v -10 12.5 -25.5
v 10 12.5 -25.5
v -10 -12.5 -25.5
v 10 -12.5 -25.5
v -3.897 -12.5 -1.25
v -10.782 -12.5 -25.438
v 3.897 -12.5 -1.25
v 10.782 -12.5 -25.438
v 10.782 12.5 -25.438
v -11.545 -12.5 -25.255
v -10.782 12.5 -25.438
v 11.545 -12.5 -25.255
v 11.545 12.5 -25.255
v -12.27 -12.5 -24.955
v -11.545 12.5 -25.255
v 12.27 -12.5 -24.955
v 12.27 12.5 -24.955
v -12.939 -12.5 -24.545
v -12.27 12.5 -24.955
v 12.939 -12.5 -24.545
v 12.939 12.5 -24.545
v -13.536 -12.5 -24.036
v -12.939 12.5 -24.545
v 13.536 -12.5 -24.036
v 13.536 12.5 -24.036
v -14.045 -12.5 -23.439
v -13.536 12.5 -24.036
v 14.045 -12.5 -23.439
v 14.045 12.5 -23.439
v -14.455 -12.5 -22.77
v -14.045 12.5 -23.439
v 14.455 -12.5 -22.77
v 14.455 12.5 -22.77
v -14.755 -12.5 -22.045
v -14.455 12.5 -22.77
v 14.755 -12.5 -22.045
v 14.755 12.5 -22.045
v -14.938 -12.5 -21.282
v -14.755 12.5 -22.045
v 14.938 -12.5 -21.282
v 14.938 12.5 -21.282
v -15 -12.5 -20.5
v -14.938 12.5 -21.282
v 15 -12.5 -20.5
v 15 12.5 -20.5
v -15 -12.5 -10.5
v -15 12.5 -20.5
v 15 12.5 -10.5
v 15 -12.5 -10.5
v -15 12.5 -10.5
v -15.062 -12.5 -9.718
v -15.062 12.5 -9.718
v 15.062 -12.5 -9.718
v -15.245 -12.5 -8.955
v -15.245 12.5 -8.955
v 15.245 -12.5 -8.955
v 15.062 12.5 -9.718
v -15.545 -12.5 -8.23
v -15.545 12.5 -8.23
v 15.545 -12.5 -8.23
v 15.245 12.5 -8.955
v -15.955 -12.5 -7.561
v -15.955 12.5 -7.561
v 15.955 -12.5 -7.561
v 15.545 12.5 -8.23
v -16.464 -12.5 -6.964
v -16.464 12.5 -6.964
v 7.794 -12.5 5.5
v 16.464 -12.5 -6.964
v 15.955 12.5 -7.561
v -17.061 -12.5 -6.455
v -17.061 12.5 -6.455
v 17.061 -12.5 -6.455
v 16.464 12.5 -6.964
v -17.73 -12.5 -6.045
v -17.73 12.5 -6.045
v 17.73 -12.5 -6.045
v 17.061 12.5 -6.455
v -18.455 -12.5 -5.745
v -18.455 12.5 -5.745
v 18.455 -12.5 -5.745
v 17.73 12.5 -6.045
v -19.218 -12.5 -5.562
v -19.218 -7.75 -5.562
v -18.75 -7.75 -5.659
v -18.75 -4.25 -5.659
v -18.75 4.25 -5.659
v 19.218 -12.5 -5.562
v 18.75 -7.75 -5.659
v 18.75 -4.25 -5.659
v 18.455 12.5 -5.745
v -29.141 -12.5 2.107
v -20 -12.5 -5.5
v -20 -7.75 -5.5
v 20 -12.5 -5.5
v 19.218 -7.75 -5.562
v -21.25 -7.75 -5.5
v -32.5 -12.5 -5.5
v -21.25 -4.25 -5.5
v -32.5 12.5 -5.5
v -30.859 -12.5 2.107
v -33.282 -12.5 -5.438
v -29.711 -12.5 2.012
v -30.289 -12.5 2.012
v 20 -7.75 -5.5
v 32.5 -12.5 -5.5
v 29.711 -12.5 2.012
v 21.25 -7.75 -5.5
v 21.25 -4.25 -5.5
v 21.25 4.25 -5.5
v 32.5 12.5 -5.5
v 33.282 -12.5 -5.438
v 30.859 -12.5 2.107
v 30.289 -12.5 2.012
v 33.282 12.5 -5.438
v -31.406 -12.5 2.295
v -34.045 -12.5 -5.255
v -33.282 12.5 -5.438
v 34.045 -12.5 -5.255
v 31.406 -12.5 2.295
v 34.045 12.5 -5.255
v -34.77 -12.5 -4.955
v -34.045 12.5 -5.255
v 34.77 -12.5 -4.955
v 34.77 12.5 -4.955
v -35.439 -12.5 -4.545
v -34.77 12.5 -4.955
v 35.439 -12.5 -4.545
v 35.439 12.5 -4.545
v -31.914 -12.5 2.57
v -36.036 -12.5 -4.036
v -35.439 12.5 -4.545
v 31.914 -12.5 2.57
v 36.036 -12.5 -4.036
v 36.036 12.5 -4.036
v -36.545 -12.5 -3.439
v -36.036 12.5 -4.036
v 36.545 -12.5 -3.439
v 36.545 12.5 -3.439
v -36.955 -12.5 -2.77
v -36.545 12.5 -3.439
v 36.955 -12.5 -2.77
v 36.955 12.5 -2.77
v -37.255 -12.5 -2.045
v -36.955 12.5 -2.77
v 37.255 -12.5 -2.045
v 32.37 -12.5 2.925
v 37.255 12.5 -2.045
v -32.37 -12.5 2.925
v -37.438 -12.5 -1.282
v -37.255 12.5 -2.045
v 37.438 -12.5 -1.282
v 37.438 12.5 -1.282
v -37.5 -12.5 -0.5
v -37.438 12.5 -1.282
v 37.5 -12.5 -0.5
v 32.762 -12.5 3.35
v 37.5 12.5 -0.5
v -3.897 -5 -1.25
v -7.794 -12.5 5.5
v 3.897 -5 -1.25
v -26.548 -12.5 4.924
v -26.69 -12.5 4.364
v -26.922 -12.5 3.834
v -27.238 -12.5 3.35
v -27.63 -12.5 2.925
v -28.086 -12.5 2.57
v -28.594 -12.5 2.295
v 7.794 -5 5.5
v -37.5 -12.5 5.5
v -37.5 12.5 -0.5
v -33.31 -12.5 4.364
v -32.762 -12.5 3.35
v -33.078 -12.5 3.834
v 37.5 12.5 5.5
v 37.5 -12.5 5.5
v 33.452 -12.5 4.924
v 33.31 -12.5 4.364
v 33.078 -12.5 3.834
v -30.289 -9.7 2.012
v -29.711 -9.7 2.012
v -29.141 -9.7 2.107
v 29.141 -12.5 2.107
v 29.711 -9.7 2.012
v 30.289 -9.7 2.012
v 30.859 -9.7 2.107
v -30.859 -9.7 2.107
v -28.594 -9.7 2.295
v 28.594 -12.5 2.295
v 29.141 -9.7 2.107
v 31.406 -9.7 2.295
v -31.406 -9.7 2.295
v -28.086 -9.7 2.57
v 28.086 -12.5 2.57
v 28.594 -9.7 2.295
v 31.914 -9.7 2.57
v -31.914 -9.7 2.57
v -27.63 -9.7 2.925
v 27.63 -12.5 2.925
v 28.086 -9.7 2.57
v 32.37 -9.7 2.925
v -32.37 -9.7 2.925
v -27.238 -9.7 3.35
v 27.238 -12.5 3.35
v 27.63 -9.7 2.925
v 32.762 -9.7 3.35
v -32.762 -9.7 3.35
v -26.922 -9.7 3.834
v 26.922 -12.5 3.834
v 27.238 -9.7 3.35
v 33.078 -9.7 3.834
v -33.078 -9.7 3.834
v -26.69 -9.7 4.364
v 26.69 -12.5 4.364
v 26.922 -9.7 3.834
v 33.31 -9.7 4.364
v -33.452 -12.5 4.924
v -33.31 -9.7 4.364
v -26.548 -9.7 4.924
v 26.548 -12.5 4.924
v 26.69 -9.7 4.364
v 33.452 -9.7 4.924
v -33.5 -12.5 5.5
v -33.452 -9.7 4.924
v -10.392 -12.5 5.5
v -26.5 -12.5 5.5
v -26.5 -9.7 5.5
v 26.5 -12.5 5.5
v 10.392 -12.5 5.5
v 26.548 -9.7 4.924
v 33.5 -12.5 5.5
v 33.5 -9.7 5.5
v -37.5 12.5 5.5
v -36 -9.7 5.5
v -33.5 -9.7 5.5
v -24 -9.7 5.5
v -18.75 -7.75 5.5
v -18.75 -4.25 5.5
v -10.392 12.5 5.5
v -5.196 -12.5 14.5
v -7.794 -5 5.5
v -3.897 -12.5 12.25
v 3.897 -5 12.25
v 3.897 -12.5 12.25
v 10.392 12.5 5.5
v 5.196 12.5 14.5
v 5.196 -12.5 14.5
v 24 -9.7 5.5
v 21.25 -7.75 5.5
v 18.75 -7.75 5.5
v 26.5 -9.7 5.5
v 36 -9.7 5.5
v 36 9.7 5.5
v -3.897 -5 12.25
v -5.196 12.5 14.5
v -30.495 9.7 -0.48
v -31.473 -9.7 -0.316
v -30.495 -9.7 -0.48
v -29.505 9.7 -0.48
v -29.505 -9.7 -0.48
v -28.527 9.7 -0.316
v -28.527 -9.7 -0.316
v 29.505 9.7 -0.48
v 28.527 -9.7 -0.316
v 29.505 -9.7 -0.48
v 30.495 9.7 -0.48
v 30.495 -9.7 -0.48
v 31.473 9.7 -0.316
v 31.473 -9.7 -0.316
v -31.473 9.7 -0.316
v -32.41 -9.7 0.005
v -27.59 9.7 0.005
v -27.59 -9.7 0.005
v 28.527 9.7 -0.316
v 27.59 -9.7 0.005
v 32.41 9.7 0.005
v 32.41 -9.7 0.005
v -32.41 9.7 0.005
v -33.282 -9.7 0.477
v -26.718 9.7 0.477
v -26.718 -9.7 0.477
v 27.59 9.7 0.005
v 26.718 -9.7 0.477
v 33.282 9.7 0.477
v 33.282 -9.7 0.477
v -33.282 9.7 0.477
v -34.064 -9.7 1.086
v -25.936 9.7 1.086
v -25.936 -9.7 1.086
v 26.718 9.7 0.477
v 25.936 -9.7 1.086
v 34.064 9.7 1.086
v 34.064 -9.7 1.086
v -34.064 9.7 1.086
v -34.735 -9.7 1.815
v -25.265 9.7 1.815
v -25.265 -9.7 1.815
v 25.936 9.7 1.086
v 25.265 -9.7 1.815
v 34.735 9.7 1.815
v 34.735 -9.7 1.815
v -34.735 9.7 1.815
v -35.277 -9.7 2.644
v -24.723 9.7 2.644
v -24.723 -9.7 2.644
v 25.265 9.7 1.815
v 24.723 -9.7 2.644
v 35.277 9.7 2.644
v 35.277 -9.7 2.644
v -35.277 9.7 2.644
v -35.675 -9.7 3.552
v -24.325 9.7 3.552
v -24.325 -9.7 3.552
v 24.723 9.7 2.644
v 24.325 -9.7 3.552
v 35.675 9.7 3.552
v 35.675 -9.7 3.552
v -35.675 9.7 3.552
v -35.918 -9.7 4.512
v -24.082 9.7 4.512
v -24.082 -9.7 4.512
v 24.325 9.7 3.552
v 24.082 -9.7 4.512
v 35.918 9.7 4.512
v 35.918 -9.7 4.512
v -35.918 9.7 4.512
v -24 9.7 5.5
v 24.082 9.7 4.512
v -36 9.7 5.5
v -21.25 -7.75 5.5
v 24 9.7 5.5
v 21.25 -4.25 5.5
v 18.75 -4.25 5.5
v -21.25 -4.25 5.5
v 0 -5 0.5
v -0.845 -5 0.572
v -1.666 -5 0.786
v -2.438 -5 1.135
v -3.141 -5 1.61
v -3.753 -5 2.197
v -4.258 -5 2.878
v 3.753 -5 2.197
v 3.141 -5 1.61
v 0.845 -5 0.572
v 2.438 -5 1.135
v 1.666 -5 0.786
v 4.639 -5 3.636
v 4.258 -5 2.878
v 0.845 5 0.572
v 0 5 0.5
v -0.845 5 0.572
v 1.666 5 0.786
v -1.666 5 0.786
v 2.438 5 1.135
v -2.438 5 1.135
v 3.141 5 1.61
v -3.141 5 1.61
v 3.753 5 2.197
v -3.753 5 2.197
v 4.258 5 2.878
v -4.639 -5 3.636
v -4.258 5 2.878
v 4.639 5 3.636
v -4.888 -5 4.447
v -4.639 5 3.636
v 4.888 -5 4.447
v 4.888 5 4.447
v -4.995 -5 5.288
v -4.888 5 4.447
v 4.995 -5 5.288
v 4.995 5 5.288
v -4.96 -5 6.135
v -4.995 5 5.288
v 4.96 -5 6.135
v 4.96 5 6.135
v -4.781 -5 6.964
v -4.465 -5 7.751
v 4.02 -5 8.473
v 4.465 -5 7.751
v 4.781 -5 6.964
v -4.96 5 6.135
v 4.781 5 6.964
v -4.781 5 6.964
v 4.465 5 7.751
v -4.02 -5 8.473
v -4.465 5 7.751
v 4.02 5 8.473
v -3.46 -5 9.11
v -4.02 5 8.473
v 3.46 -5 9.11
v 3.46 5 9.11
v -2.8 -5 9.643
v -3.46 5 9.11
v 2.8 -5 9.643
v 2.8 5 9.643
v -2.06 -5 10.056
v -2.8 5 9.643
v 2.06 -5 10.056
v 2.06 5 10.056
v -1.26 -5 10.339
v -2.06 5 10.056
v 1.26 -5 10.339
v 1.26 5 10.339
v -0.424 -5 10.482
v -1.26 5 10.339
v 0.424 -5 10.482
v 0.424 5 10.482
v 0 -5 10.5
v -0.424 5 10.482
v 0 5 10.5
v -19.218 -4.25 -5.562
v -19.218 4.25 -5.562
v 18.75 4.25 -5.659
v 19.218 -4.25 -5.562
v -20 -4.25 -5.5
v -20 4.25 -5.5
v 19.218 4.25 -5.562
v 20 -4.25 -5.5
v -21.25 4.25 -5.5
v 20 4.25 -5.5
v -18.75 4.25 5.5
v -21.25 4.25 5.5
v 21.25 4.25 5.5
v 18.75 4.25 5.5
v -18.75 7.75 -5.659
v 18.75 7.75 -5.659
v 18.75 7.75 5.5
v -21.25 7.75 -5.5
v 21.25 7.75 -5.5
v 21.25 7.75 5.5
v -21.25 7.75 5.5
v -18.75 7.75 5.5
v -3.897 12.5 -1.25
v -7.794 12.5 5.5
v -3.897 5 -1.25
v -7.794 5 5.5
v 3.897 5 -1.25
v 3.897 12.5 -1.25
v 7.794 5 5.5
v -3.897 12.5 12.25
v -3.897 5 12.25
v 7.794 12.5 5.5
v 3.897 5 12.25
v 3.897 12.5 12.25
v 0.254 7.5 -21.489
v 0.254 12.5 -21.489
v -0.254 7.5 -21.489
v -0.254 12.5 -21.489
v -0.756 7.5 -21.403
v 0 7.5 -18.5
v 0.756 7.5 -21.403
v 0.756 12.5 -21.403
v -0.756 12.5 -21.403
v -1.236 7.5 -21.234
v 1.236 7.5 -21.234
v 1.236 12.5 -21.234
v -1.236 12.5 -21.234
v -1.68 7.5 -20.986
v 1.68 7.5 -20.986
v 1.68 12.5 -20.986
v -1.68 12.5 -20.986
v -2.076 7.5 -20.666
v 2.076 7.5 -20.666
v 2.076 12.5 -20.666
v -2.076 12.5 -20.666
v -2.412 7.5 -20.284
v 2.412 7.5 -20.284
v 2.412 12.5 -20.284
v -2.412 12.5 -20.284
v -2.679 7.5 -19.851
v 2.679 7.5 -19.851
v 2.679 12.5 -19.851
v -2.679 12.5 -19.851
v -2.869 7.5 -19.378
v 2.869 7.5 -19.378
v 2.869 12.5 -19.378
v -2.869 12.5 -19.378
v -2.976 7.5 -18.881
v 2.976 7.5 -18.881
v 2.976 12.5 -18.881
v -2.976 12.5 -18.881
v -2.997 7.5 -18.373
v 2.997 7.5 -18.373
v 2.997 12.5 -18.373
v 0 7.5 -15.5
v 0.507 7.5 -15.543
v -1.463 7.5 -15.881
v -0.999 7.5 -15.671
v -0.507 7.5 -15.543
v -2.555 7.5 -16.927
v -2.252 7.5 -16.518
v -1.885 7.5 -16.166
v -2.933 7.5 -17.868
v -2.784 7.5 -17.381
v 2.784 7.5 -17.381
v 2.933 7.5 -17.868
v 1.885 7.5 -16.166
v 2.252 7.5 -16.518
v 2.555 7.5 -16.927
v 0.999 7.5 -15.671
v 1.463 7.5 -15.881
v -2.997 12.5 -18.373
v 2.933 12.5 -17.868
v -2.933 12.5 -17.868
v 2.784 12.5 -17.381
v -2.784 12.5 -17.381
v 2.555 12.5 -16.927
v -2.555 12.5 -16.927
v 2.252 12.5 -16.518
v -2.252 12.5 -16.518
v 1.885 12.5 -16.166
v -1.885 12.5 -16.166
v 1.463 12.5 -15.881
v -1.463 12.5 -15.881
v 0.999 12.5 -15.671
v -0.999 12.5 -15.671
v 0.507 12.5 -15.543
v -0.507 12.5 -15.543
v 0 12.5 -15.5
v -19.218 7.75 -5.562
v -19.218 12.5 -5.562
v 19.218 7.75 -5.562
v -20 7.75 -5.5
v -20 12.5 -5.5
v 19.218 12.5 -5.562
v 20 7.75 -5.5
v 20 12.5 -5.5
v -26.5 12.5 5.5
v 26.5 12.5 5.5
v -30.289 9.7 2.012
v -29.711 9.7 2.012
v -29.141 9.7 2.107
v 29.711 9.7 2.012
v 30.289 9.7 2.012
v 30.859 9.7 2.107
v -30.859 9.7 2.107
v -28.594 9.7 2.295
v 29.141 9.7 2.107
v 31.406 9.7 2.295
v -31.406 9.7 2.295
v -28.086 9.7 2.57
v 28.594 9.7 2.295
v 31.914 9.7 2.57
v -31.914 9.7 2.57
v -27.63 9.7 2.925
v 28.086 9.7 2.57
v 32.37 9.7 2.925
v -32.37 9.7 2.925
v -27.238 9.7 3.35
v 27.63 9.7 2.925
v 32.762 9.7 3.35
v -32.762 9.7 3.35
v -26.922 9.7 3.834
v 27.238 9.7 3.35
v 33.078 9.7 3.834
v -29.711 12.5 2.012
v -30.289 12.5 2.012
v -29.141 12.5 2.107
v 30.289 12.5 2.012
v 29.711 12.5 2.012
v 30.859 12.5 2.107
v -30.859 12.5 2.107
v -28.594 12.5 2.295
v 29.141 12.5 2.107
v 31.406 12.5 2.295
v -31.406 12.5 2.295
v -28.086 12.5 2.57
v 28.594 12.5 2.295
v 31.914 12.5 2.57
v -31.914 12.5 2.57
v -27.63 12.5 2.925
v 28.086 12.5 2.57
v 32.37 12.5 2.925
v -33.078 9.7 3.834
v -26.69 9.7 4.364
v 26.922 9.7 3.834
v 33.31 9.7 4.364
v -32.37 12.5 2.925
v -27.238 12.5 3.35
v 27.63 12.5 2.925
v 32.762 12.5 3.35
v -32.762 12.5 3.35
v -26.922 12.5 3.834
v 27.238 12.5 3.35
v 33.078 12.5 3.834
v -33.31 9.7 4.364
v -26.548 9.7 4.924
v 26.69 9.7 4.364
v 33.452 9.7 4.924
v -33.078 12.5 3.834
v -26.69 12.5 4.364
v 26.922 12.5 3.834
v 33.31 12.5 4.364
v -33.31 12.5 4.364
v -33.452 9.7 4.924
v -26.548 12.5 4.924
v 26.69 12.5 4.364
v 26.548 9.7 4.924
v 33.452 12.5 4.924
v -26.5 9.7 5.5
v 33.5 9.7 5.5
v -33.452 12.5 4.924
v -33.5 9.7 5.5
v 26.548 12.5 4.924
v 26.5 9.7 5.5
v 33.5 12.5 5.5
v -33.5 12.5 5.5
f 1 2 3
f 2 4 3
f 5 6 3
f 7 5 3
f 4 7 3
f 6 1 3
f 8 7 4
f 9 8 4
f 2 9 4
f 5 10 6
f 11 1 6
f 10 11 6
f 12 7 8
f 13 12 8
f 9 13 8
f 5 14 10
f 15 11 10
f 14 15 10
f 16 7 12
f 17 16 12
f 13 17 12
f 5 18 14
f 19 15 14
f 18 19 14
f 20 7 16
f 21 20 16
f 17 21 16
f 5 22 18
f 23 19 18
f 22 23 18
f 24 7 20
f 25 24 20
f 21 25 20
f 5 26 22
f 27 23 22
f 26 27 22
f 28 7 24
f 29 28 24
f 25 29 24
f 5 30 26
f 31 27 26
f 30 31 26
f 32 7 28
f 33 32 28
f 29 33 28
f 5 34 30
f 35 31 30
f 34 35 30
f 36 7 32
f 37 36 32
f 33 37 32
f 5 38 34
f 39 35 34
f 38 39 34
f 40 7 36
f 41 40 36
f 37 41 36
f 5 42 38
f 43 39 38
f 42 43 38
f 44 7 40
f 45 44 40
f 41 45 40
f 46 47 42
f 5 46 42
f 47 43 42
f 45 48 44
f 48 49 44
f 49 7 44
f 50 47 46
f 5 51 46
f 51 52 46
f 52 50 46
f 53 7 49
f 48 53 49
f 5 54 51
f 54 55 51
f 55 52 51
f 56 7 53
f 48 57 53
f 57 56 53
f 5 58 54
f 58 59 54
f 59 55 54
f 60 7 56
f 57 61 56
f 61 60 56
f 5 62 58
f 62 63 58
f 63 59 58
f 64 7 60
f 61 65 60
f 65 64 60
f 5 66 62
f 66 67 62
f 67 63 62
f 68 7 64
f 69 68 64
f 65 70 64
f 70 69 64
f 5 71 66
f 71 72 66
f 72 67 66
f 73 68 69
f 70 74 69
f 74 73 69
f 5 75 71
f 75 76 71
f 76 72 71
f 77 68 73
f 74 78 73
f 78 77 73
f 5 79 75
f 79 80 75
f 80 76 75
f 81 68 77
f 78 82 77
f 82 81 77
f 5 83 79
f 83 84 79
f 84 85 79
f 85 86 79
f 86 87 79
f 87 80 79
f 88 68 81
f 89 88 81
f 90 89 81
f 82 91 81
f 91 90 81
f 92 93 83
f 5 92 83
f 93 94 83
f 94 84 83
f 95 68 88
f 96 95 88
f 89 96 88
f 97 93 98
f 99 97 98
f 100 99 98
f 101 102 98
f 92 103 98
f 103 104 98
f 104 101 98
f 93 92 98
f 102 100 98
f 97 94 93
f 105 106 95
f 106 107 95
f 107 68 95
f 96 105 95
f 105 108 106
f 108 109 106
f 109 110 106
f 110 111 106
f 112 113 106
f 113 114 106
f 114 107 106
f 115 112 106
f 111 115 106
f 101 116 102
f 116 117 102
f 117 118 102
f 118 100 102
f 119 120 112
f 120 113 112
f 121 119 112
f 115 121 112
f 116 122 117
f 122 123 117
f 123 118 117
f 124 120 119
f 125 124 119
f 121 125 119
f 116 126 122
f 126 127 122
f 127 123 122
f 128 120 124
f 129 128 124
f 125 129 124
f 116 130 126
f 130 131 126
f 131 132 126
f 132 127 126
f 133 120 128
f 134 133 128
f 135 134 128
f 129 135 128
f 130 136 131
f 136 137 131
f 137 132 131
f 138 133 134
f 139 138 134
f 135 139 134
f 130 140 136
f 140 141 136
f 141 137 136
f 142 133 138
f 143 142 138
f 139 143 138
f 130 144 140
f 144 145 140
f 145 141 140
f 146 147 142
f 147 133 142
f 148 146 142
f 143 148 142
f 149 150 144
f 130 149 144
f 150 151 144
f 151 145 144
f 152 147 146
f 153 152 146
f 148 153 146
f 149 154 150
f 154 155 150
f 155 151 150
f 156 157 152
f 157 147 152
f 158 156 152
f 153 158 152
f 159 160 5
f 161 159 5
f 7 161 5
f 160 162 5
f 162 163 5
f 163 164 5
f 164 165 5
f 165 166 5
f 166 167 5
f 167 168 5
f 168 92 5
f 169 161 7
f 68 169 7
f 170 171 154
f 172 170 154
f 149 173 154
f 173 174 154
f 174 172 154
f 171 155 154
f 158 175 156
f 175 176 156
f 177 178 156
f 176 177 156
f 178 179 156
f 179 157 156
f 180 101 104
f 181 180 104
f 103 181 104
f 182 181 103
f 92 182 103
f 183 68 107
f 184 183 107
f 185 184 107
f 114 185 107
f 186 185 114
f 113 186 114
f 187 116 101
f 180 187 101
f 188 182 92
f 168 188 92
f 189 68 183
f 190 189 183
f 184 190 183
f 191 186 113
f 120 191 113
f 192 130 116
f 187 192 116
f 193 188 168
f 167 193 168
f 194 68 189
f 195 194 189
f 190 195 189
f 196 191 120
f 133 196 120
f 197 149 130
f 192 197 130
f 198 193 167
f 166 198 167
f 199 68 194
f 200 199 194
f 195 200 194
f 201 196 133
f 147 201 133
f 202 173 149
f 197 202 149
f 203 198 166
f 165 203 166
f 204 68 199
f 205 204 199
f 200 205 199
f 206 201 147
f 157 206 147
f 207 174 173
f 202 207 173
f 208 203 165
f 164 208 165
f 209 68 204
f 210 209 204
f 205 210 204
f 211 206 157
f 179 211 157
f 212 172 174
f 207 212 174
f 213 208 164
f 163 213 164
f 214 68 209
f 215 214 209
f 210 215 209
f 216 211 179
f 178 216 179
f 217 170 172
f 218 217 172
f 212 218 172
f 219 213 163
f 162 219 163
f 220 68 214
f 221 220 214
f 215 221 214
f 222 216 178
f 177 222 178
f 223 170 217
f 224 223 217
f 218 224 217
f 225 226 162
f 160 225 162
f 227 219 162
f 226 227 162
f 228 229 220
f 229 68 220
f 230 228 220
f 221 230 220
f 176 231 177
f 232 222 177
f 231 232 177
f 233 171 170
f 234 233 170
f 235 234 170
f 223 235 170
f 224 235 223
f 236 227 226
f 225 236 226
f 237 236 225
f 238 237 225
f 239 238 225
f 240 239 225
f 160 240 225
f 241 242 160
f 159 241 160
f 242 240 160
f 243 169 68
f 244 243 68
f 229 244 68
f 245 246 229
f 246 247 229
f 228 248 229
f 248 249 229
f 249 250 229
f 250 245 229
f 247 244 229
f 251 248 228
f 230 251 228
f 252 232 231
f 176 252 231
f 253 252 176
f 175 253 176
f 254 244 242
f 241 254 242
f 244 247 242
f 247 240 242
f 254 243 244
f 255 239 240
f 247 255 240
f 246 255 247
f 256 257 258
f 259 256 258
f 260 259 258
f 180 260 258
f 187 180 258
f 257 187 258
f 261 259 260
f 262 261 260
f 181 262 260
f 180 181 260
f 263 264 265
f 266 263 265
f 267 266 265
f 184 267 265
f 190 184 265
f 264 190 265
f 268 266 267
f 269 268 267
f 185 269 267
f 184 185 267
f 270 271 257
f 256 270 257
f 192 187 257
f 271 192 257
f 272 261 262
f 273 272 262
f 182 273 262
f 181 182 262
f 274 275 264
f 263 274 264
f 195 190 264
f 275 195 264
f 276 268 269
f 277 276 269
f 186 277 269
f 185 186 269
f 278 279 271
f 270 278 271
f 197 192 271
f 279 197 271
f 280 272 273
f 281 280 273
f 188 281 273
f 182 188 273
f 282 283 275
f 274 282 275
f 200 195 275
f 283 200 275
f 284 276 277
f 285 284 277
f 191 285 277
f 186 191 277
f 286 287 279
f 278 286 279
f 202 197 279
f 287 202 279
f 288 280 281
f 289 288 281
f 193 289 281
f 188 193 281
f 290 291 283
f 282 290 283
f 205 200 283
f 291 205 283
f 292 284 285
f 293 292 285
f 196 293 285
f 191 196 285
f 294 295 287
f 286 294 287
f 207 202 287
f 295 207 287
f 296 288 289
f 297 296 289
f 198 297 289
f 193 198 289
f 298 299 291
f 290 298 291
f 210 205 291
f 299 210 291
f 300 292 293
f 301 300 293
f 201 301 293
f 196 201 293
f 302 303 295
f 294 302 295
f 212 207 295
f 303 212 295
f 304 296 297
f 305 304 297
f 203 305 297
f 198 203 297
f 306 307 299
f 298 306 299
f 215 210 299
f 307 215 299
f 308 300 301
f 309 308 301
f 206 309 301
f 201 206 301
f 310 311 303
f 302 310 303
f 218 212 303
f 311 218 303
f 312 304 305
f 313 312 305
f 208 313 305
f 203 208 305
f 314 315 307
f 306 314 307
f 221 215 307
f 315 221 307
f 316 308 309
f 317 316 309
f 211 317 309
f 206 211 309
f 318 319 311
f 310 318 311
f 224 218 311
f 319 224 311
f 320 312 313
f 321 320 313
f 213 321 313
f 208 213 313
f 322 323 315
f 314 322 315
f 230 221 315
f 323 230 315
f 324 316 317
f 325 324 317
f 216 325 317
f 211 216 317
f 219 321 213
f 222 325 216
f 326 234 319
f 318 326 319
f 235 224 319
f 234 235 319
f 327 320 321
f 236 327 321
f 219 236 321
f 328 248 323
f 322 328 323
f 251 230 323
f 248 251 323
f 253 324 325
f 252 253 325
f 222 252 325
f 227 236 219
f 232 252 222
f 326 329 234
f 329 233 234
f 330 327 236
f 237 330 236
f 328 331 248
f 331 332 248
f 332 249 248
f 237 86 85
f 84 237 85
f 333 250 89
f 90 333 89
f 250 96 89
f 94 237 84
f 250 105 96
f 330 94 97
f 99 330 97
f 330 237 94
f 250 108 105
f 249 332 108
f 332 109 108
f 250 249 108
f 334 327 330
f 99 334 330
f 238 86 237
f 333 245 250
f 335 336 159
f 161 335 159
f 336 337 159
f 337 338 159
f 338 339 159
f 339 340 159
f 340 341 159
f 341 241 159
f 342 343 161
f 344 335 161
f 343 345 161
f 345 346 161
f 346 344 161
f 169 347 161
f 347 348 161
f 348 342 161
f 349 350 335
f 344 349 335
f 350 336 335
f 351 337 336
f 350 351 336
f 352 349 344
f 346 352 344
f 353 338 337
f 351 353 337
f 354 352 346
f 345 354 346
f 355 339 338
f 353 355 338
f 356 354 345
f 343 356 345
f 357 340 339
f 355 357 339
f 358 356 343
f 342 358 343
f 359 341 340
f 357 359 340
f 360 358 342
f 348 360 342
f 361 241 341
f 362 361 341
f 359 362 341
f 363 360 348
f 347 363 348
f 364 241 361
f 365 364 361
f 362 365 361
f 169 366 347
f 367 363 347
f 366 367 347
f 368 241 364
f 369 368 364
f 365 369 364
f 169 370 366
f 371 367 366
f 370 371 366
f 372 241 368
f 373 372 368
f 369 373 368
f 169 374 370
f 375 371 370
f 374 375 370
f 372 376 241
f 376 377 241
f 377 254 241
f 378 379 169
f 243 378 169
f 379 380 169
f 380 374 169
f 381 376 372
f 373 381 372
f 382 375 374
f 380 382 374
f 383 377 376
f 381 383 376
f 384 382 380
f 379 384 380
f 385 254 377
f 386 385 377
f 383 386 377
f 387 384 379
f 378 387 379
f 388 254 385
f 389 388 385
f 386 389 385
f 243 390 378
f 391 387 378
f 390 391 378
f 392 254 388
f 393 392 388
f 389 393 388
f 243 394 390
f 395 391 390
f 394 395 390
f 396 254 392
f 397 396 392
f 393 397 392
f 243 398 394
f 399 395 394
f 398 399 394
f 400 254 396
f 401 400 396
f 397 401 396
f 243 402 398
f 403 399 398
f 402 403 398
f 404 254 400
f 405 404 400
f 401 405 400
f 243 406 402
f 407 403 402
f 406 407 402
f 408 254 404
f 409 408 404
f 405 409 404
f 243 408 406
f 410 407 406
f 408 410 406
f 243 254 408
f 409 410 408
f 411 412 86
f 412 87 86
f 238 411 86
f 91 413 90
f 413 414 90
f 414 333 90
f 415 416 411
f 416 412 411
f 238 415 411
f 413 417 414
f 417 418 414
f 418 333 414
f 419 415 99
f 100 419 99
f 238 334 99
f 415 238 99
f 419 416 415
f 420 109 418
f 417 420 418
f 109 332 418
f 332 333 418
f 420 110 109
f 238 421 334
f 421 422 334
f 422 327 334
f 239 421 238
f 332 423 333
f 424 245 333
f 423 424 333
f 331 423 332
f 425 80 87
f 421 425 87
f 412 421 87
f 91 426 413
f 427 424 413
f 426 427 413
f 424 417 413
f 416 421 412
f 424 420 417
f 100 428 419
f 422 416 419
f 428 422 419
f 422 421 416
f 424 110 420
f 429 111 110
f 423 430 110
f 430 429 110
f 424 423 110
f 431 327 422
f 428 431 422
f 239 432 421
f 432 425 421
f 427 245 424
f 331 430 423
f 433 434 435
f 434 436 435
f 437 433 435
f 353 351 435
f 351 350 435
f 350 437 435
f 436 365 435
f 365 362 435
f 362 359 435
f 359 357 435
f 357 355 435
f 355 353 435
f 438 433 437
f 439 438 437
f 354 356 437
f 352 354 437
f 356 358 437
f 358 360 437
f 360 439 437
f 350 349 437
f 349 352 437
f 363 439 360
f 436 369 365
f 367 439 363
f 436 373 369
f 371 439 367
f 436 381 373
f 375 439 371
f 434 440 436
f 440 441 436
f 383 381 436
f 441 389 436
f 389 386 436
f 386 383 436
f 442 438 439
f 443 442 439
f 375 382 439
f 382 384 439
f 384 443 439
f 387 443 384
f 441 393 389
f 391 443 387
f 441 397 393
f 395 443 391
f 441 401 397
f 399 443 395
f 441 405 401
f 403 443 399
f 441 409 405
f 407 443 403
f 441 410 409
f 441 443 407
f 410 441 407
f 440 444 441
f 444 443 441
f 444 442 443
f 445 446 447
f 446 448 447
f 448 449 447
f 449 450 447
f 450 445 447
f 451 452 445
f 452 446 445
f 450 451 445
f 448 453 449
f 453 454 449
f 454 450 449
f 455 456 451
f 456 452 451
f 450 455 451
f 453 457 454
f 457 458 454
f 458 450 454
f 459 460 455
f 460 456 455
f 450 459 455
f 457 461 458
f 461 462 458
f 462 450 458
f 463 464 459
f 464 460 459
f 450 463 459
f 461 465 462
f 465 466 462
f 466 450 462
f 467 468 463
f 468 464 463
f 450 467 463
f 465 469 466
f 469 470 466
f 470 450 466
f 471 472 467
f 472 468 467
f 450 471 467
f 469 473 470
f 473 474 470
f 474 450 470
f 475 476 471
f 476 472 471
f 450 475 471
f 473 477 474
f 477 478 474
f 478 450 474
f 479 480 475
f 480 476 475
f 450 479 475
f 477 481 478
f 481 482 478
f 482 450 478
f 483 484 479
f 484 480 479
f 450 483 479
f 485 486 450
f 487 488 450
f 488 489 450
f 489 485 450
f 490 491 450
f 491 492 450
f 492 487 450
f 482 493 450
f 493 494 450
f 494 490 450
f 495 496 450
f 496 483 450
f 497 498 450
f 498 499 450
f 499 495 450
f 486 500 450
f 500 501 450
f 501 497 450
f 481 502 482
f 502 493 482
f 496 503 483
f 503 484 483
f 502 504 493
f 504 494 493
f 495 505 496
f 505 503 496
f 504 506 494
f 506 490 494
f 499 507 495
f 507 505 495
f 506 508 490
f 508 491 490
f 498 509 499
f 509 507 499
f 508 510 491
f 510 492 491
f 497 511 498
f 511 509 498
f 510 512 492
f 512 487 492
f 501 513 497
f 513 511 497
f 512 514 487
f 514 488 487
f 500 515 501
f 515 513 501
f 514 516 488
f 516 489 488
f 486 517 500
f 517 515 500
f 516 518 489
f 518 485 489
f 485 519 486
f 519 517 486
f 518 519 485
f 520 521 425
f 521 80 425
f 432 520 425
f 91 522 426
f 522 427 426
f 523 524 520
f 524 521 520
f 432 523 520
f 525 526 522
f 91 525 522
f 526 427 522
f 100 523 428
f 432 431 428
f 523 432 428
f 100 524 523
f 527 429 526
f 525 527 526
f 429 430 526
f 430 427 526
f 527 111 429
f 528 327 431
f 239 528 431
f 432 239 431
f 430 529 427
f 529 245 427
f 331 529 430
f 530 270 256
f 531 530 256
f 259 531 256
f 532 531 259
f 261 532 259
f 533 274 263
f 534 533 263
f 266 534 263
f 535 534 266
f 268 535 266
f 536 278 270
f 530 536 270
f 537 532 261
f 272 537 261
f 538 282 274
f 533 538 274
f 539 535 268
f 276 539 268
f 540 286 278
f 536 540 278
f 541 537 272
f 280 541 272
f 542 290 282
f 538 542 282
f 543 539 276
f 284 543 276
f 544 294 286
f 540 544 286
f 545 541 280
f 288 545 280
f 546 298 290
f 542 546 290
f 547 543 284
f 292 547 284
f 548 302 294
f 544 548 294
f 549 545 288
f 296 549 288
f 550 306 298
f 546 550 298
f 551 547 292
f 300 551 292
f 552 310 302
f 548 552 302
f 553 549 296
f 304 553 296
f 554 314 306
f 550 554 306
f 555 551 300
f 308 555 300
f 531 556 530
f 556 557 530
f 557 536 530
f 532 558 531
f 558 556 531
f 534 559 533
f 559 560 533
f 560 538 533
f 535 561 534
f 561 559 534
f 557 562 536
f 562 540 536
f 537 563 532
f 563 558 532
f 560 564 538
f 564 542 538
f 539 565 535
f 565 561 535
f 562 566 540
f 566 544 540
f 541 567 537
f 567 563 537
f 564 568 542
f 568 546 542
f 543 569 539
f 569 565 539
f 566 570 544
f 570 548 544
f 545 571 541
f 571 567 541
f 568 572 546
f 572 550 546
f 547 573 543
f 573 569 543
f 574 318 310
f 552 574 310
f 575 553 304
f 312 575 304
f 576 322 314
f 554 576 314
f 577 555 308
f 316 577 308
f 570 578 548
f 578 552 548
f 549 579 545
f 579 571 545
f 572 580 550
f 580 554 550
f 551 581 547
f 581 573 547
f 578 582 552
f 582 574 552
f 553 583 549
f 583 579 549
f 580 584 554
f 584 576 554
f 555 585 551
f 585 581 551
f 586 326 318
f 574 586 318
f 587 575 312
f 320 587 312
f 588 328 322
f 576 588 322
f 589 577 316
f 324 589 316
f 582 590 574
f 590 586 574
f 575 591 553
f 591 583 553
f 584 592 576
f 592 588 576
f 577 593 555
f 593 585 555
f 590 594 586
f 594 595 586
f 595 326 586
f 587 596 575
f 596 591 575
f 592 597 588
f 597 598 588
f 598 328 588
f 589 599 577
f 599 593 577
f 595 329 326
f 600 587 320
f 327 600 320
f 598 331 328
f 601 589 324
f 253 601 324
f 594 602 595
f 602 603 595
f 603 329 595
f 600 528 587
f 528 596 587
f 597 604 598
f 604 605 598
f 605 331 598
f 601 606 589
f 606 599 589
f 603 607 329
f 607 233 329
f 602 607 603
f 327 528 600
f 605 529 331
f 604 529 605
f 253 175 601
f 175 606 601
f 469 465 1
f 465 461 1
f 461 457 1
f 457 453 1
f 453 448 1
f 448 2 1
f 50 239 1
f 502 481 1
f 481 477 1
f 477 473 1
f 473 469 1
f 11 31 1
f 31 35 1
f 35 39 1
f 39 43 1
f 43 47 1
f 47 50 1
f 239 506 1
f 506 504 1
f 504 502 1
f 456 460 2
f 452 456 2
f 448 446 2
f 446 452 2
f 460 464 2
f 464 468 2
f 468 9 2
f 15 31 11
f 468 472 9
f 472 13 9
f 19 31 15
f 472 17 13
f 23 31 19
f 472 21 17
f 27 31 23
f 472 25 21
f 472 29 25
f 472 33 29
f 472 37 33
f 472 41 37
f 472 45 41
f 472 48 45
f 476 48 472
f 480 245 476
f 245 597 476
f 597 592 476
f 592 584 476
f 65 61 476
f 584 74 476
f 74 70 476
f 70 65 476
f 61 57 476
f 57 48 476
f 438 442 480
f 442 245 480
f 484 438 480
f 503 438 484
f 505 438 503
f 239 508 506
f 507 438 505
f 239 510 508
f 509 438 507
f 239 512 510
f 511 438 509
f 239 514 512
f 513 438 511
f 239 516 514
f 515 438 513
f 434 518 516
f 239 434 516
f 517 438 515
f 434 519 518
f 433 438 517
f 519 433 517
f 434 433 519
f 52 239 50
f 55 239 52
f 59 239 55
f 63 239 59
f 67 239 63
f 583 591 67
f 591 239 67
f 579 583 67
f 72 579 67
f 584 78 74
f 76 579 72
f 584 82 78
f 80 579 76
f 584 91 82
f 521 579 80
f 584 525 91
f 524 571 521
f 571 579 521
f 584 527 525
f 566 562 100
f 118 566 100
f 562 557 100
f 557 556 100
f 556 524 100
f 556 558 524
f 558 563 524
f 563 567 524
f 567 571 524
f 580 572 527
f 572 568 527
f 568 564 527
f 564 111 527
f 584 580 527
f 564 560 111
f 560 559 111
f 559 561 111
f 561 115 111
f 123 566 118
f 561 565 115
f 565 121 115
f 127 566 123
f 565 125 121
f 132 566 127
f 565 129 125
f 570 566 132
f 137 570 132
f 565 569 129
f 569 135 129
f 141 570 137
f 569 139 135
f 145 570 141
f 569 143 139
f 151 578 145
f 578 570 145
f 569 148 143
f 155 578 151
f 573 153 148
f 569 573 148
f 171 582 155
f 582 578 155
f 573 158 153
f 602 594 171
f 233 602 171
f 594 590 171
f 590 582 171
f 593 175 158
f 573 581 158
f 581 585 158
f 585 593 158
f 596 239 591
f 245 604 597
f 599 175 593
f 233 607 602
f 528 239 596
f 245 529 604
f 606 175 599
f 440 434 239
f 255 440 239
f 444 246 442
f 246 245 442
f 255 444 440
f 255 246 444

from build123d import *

# Parameters (mm, degrees)
EXTRUDE_1_DEPTH     = 12.5
EXTRUDE_2_DEPTH     = 2.8
SKETCH_3_R          = 5
EXTRUDE_3_DEPTH     = 5
FILLET_1_R          = 5
SKETCH_4_W          = 2.5
SKETCH_4_H          = 3.5
CUT_EXTRUDE_1_DEPTH = 32
SKETCH_5_R          = 3
CUT_EXTRUDE_2_DEPTH = 5


with BuildPart() as part:
    # 草圖1 → 填料-伸長1 (new body, symmetric)
    with BuildSketch(Plane(origin=(0, 0, 0), x_dir=(1, 0, 0), z_dir=(0, 1, 0))):
        with BuildLine():
            Line((-37.5, 5.5), (-15, 5.5))
            Line((-15, 5.5), (-15, 25.5))
            Line((-15, 25.5), (15, 25.5))
            Line((15, 25.5), (15, 5.5))
            Line((15, 5.5), (37.5, 5.5))
            Line((37.5, 5.5), (37.5, -5.5))
            Line((37.5, -5.5), (36, -5.5))
            ThreePointArc((36, -5.5), (30, 0.5), (24, -5.5))
            Line((24, -5.5), (10.392304845, -5.5))
            Line((10.392304845, -5.5), (5.196152423, -14.5))
            Line((5.196152423, -14.5), (-5.196152423, -14.5))
            Line((-5.196152423, -14.5), (-10.392304845, -5.5))
            Line((-10.392304845, -5.5), (-24, -5.5))
            ThreePointArc((-24, -5.5), (-30, 0.5), (-36, -5.5))
            Line((-36, -5.5), (-37.5, -5.5))
            Line((-37.5, -5.5), (-37.5, 5.5))
        make_face()
        Polygon((3.897114317, -12.25), (7.794228634, -5.5), (3.897114317, 1.25), (-3.897114317, 1.25), (-7.794228634, -5.5), (-3.897114317, -12.25), align=None, mode=Mode.SUBTRACT)
    extrude(amount=EXTRUDE_1_DEPTH, both=True)

    # 草圖2 → 填料-伸長2 (add)
    with BuildSketch(Plane(origin=(0, 12.5, 0), x_dir=(1, 0, 0), z_dir=(0, 1, 0))):
        with BuildLine():
            Line((-36, -5.5), (-33.5, -5.5))
            ThreePointArc((-33.5, -5.5), (-30, -2), (-26.5, -5.5))
            Line((-26.5, -5.5), (-24, -5.5))
            ThreePointArc((-24, -5.5), (-30, 0.5), (-36, -5.5))
        make_face()
        with BuildLine():
            Line((26.5, -5.5), (24, -5.5))
            ThreePointArc((24, -5.5), (30, 0.5), (36, -5.5))
            Line((36, -5.5), (33.5, -5.5))
            ThreePointArc((33.5, -5.5), (30, -2), (26.5, -5.5))
        make_face()
    extrude_2 = extrude(amount=-EXTRUDE_2_DEPTH)

    # 鏡射1: 填料-伸長2 across plane
    add(extrude_2.mirror(Plane.ZX))

    # 草圖3 → 填料-伸長3 (add, symmetric)
    with BuildSketch(Plane(origin=(0, 0, 0), x_dir=(1, 0, 0), z_dir=(0, 1, 0))):
        Polygon((7.794228634, -5.5), (3.897114317, 1.25), (-3.897114317, 1.25), (-7.794228634, -5.5), (-3.897114317, -12.25), (3.897114317, -12.25), align=None)
        with Locations((0, -5.5)):
            Circle(SKETCH_3_R, mode=Mode.SUBTRACT)
    extrude(amount=EXTRUDE_3_DEPTH, both=True)

    # 圓角1
    fillet_1_edges = [part.edges().sort_by_distance(p)[0] for p in [
        (-37.5, 0, -5.5),
        (-15, 0, -5.5),
        (-15, 0, -25.5),
        (15, 0, -25.5),
        (15, 0, -5.5),
        (37.5, 0, -5.5),
    ]]
    fillet(fillet_1_edges, radius=FILLET_1_R)

    # 草圖4 → 除料-伸長1 (cut, through all)
    with BuildSketch(Plane.XY.offset(5.5)):
        with Locations((20, 6)):
            Rectangle(SKETCH_4_W, SKETCH_4_H)
        with Locations((20, -6)):
            Rectangle(SKETCH_4_W, SKETCH_4_H)
        with Locations((-20, -6)):
            Rectangle(SKETCH_4_W, SKETCH_4_H)
        with Locations((-20, 6)):
            Rectangle(SKETCH_4_W, SKETCH_4_H)
    extrude(amount=-CUT_EXTRUDE_1_DEPTH, mode=Mode.SUBTRACT)

    # 草圖5 → 除料-伸長2 (cut)
    with BuildSketch(Plane(origin=(0, 12.5, 0), x_dir=(1, 0, 0), z_dir=(0, 1, 0))):
        with Locations((0, 18.5)):
            Circle(SKETCH_5_R)
    extrude(amount=-CUT_EXTRUDE_2_DEPTH, mode=Mode.SUBTRACT)


solid = part.part
